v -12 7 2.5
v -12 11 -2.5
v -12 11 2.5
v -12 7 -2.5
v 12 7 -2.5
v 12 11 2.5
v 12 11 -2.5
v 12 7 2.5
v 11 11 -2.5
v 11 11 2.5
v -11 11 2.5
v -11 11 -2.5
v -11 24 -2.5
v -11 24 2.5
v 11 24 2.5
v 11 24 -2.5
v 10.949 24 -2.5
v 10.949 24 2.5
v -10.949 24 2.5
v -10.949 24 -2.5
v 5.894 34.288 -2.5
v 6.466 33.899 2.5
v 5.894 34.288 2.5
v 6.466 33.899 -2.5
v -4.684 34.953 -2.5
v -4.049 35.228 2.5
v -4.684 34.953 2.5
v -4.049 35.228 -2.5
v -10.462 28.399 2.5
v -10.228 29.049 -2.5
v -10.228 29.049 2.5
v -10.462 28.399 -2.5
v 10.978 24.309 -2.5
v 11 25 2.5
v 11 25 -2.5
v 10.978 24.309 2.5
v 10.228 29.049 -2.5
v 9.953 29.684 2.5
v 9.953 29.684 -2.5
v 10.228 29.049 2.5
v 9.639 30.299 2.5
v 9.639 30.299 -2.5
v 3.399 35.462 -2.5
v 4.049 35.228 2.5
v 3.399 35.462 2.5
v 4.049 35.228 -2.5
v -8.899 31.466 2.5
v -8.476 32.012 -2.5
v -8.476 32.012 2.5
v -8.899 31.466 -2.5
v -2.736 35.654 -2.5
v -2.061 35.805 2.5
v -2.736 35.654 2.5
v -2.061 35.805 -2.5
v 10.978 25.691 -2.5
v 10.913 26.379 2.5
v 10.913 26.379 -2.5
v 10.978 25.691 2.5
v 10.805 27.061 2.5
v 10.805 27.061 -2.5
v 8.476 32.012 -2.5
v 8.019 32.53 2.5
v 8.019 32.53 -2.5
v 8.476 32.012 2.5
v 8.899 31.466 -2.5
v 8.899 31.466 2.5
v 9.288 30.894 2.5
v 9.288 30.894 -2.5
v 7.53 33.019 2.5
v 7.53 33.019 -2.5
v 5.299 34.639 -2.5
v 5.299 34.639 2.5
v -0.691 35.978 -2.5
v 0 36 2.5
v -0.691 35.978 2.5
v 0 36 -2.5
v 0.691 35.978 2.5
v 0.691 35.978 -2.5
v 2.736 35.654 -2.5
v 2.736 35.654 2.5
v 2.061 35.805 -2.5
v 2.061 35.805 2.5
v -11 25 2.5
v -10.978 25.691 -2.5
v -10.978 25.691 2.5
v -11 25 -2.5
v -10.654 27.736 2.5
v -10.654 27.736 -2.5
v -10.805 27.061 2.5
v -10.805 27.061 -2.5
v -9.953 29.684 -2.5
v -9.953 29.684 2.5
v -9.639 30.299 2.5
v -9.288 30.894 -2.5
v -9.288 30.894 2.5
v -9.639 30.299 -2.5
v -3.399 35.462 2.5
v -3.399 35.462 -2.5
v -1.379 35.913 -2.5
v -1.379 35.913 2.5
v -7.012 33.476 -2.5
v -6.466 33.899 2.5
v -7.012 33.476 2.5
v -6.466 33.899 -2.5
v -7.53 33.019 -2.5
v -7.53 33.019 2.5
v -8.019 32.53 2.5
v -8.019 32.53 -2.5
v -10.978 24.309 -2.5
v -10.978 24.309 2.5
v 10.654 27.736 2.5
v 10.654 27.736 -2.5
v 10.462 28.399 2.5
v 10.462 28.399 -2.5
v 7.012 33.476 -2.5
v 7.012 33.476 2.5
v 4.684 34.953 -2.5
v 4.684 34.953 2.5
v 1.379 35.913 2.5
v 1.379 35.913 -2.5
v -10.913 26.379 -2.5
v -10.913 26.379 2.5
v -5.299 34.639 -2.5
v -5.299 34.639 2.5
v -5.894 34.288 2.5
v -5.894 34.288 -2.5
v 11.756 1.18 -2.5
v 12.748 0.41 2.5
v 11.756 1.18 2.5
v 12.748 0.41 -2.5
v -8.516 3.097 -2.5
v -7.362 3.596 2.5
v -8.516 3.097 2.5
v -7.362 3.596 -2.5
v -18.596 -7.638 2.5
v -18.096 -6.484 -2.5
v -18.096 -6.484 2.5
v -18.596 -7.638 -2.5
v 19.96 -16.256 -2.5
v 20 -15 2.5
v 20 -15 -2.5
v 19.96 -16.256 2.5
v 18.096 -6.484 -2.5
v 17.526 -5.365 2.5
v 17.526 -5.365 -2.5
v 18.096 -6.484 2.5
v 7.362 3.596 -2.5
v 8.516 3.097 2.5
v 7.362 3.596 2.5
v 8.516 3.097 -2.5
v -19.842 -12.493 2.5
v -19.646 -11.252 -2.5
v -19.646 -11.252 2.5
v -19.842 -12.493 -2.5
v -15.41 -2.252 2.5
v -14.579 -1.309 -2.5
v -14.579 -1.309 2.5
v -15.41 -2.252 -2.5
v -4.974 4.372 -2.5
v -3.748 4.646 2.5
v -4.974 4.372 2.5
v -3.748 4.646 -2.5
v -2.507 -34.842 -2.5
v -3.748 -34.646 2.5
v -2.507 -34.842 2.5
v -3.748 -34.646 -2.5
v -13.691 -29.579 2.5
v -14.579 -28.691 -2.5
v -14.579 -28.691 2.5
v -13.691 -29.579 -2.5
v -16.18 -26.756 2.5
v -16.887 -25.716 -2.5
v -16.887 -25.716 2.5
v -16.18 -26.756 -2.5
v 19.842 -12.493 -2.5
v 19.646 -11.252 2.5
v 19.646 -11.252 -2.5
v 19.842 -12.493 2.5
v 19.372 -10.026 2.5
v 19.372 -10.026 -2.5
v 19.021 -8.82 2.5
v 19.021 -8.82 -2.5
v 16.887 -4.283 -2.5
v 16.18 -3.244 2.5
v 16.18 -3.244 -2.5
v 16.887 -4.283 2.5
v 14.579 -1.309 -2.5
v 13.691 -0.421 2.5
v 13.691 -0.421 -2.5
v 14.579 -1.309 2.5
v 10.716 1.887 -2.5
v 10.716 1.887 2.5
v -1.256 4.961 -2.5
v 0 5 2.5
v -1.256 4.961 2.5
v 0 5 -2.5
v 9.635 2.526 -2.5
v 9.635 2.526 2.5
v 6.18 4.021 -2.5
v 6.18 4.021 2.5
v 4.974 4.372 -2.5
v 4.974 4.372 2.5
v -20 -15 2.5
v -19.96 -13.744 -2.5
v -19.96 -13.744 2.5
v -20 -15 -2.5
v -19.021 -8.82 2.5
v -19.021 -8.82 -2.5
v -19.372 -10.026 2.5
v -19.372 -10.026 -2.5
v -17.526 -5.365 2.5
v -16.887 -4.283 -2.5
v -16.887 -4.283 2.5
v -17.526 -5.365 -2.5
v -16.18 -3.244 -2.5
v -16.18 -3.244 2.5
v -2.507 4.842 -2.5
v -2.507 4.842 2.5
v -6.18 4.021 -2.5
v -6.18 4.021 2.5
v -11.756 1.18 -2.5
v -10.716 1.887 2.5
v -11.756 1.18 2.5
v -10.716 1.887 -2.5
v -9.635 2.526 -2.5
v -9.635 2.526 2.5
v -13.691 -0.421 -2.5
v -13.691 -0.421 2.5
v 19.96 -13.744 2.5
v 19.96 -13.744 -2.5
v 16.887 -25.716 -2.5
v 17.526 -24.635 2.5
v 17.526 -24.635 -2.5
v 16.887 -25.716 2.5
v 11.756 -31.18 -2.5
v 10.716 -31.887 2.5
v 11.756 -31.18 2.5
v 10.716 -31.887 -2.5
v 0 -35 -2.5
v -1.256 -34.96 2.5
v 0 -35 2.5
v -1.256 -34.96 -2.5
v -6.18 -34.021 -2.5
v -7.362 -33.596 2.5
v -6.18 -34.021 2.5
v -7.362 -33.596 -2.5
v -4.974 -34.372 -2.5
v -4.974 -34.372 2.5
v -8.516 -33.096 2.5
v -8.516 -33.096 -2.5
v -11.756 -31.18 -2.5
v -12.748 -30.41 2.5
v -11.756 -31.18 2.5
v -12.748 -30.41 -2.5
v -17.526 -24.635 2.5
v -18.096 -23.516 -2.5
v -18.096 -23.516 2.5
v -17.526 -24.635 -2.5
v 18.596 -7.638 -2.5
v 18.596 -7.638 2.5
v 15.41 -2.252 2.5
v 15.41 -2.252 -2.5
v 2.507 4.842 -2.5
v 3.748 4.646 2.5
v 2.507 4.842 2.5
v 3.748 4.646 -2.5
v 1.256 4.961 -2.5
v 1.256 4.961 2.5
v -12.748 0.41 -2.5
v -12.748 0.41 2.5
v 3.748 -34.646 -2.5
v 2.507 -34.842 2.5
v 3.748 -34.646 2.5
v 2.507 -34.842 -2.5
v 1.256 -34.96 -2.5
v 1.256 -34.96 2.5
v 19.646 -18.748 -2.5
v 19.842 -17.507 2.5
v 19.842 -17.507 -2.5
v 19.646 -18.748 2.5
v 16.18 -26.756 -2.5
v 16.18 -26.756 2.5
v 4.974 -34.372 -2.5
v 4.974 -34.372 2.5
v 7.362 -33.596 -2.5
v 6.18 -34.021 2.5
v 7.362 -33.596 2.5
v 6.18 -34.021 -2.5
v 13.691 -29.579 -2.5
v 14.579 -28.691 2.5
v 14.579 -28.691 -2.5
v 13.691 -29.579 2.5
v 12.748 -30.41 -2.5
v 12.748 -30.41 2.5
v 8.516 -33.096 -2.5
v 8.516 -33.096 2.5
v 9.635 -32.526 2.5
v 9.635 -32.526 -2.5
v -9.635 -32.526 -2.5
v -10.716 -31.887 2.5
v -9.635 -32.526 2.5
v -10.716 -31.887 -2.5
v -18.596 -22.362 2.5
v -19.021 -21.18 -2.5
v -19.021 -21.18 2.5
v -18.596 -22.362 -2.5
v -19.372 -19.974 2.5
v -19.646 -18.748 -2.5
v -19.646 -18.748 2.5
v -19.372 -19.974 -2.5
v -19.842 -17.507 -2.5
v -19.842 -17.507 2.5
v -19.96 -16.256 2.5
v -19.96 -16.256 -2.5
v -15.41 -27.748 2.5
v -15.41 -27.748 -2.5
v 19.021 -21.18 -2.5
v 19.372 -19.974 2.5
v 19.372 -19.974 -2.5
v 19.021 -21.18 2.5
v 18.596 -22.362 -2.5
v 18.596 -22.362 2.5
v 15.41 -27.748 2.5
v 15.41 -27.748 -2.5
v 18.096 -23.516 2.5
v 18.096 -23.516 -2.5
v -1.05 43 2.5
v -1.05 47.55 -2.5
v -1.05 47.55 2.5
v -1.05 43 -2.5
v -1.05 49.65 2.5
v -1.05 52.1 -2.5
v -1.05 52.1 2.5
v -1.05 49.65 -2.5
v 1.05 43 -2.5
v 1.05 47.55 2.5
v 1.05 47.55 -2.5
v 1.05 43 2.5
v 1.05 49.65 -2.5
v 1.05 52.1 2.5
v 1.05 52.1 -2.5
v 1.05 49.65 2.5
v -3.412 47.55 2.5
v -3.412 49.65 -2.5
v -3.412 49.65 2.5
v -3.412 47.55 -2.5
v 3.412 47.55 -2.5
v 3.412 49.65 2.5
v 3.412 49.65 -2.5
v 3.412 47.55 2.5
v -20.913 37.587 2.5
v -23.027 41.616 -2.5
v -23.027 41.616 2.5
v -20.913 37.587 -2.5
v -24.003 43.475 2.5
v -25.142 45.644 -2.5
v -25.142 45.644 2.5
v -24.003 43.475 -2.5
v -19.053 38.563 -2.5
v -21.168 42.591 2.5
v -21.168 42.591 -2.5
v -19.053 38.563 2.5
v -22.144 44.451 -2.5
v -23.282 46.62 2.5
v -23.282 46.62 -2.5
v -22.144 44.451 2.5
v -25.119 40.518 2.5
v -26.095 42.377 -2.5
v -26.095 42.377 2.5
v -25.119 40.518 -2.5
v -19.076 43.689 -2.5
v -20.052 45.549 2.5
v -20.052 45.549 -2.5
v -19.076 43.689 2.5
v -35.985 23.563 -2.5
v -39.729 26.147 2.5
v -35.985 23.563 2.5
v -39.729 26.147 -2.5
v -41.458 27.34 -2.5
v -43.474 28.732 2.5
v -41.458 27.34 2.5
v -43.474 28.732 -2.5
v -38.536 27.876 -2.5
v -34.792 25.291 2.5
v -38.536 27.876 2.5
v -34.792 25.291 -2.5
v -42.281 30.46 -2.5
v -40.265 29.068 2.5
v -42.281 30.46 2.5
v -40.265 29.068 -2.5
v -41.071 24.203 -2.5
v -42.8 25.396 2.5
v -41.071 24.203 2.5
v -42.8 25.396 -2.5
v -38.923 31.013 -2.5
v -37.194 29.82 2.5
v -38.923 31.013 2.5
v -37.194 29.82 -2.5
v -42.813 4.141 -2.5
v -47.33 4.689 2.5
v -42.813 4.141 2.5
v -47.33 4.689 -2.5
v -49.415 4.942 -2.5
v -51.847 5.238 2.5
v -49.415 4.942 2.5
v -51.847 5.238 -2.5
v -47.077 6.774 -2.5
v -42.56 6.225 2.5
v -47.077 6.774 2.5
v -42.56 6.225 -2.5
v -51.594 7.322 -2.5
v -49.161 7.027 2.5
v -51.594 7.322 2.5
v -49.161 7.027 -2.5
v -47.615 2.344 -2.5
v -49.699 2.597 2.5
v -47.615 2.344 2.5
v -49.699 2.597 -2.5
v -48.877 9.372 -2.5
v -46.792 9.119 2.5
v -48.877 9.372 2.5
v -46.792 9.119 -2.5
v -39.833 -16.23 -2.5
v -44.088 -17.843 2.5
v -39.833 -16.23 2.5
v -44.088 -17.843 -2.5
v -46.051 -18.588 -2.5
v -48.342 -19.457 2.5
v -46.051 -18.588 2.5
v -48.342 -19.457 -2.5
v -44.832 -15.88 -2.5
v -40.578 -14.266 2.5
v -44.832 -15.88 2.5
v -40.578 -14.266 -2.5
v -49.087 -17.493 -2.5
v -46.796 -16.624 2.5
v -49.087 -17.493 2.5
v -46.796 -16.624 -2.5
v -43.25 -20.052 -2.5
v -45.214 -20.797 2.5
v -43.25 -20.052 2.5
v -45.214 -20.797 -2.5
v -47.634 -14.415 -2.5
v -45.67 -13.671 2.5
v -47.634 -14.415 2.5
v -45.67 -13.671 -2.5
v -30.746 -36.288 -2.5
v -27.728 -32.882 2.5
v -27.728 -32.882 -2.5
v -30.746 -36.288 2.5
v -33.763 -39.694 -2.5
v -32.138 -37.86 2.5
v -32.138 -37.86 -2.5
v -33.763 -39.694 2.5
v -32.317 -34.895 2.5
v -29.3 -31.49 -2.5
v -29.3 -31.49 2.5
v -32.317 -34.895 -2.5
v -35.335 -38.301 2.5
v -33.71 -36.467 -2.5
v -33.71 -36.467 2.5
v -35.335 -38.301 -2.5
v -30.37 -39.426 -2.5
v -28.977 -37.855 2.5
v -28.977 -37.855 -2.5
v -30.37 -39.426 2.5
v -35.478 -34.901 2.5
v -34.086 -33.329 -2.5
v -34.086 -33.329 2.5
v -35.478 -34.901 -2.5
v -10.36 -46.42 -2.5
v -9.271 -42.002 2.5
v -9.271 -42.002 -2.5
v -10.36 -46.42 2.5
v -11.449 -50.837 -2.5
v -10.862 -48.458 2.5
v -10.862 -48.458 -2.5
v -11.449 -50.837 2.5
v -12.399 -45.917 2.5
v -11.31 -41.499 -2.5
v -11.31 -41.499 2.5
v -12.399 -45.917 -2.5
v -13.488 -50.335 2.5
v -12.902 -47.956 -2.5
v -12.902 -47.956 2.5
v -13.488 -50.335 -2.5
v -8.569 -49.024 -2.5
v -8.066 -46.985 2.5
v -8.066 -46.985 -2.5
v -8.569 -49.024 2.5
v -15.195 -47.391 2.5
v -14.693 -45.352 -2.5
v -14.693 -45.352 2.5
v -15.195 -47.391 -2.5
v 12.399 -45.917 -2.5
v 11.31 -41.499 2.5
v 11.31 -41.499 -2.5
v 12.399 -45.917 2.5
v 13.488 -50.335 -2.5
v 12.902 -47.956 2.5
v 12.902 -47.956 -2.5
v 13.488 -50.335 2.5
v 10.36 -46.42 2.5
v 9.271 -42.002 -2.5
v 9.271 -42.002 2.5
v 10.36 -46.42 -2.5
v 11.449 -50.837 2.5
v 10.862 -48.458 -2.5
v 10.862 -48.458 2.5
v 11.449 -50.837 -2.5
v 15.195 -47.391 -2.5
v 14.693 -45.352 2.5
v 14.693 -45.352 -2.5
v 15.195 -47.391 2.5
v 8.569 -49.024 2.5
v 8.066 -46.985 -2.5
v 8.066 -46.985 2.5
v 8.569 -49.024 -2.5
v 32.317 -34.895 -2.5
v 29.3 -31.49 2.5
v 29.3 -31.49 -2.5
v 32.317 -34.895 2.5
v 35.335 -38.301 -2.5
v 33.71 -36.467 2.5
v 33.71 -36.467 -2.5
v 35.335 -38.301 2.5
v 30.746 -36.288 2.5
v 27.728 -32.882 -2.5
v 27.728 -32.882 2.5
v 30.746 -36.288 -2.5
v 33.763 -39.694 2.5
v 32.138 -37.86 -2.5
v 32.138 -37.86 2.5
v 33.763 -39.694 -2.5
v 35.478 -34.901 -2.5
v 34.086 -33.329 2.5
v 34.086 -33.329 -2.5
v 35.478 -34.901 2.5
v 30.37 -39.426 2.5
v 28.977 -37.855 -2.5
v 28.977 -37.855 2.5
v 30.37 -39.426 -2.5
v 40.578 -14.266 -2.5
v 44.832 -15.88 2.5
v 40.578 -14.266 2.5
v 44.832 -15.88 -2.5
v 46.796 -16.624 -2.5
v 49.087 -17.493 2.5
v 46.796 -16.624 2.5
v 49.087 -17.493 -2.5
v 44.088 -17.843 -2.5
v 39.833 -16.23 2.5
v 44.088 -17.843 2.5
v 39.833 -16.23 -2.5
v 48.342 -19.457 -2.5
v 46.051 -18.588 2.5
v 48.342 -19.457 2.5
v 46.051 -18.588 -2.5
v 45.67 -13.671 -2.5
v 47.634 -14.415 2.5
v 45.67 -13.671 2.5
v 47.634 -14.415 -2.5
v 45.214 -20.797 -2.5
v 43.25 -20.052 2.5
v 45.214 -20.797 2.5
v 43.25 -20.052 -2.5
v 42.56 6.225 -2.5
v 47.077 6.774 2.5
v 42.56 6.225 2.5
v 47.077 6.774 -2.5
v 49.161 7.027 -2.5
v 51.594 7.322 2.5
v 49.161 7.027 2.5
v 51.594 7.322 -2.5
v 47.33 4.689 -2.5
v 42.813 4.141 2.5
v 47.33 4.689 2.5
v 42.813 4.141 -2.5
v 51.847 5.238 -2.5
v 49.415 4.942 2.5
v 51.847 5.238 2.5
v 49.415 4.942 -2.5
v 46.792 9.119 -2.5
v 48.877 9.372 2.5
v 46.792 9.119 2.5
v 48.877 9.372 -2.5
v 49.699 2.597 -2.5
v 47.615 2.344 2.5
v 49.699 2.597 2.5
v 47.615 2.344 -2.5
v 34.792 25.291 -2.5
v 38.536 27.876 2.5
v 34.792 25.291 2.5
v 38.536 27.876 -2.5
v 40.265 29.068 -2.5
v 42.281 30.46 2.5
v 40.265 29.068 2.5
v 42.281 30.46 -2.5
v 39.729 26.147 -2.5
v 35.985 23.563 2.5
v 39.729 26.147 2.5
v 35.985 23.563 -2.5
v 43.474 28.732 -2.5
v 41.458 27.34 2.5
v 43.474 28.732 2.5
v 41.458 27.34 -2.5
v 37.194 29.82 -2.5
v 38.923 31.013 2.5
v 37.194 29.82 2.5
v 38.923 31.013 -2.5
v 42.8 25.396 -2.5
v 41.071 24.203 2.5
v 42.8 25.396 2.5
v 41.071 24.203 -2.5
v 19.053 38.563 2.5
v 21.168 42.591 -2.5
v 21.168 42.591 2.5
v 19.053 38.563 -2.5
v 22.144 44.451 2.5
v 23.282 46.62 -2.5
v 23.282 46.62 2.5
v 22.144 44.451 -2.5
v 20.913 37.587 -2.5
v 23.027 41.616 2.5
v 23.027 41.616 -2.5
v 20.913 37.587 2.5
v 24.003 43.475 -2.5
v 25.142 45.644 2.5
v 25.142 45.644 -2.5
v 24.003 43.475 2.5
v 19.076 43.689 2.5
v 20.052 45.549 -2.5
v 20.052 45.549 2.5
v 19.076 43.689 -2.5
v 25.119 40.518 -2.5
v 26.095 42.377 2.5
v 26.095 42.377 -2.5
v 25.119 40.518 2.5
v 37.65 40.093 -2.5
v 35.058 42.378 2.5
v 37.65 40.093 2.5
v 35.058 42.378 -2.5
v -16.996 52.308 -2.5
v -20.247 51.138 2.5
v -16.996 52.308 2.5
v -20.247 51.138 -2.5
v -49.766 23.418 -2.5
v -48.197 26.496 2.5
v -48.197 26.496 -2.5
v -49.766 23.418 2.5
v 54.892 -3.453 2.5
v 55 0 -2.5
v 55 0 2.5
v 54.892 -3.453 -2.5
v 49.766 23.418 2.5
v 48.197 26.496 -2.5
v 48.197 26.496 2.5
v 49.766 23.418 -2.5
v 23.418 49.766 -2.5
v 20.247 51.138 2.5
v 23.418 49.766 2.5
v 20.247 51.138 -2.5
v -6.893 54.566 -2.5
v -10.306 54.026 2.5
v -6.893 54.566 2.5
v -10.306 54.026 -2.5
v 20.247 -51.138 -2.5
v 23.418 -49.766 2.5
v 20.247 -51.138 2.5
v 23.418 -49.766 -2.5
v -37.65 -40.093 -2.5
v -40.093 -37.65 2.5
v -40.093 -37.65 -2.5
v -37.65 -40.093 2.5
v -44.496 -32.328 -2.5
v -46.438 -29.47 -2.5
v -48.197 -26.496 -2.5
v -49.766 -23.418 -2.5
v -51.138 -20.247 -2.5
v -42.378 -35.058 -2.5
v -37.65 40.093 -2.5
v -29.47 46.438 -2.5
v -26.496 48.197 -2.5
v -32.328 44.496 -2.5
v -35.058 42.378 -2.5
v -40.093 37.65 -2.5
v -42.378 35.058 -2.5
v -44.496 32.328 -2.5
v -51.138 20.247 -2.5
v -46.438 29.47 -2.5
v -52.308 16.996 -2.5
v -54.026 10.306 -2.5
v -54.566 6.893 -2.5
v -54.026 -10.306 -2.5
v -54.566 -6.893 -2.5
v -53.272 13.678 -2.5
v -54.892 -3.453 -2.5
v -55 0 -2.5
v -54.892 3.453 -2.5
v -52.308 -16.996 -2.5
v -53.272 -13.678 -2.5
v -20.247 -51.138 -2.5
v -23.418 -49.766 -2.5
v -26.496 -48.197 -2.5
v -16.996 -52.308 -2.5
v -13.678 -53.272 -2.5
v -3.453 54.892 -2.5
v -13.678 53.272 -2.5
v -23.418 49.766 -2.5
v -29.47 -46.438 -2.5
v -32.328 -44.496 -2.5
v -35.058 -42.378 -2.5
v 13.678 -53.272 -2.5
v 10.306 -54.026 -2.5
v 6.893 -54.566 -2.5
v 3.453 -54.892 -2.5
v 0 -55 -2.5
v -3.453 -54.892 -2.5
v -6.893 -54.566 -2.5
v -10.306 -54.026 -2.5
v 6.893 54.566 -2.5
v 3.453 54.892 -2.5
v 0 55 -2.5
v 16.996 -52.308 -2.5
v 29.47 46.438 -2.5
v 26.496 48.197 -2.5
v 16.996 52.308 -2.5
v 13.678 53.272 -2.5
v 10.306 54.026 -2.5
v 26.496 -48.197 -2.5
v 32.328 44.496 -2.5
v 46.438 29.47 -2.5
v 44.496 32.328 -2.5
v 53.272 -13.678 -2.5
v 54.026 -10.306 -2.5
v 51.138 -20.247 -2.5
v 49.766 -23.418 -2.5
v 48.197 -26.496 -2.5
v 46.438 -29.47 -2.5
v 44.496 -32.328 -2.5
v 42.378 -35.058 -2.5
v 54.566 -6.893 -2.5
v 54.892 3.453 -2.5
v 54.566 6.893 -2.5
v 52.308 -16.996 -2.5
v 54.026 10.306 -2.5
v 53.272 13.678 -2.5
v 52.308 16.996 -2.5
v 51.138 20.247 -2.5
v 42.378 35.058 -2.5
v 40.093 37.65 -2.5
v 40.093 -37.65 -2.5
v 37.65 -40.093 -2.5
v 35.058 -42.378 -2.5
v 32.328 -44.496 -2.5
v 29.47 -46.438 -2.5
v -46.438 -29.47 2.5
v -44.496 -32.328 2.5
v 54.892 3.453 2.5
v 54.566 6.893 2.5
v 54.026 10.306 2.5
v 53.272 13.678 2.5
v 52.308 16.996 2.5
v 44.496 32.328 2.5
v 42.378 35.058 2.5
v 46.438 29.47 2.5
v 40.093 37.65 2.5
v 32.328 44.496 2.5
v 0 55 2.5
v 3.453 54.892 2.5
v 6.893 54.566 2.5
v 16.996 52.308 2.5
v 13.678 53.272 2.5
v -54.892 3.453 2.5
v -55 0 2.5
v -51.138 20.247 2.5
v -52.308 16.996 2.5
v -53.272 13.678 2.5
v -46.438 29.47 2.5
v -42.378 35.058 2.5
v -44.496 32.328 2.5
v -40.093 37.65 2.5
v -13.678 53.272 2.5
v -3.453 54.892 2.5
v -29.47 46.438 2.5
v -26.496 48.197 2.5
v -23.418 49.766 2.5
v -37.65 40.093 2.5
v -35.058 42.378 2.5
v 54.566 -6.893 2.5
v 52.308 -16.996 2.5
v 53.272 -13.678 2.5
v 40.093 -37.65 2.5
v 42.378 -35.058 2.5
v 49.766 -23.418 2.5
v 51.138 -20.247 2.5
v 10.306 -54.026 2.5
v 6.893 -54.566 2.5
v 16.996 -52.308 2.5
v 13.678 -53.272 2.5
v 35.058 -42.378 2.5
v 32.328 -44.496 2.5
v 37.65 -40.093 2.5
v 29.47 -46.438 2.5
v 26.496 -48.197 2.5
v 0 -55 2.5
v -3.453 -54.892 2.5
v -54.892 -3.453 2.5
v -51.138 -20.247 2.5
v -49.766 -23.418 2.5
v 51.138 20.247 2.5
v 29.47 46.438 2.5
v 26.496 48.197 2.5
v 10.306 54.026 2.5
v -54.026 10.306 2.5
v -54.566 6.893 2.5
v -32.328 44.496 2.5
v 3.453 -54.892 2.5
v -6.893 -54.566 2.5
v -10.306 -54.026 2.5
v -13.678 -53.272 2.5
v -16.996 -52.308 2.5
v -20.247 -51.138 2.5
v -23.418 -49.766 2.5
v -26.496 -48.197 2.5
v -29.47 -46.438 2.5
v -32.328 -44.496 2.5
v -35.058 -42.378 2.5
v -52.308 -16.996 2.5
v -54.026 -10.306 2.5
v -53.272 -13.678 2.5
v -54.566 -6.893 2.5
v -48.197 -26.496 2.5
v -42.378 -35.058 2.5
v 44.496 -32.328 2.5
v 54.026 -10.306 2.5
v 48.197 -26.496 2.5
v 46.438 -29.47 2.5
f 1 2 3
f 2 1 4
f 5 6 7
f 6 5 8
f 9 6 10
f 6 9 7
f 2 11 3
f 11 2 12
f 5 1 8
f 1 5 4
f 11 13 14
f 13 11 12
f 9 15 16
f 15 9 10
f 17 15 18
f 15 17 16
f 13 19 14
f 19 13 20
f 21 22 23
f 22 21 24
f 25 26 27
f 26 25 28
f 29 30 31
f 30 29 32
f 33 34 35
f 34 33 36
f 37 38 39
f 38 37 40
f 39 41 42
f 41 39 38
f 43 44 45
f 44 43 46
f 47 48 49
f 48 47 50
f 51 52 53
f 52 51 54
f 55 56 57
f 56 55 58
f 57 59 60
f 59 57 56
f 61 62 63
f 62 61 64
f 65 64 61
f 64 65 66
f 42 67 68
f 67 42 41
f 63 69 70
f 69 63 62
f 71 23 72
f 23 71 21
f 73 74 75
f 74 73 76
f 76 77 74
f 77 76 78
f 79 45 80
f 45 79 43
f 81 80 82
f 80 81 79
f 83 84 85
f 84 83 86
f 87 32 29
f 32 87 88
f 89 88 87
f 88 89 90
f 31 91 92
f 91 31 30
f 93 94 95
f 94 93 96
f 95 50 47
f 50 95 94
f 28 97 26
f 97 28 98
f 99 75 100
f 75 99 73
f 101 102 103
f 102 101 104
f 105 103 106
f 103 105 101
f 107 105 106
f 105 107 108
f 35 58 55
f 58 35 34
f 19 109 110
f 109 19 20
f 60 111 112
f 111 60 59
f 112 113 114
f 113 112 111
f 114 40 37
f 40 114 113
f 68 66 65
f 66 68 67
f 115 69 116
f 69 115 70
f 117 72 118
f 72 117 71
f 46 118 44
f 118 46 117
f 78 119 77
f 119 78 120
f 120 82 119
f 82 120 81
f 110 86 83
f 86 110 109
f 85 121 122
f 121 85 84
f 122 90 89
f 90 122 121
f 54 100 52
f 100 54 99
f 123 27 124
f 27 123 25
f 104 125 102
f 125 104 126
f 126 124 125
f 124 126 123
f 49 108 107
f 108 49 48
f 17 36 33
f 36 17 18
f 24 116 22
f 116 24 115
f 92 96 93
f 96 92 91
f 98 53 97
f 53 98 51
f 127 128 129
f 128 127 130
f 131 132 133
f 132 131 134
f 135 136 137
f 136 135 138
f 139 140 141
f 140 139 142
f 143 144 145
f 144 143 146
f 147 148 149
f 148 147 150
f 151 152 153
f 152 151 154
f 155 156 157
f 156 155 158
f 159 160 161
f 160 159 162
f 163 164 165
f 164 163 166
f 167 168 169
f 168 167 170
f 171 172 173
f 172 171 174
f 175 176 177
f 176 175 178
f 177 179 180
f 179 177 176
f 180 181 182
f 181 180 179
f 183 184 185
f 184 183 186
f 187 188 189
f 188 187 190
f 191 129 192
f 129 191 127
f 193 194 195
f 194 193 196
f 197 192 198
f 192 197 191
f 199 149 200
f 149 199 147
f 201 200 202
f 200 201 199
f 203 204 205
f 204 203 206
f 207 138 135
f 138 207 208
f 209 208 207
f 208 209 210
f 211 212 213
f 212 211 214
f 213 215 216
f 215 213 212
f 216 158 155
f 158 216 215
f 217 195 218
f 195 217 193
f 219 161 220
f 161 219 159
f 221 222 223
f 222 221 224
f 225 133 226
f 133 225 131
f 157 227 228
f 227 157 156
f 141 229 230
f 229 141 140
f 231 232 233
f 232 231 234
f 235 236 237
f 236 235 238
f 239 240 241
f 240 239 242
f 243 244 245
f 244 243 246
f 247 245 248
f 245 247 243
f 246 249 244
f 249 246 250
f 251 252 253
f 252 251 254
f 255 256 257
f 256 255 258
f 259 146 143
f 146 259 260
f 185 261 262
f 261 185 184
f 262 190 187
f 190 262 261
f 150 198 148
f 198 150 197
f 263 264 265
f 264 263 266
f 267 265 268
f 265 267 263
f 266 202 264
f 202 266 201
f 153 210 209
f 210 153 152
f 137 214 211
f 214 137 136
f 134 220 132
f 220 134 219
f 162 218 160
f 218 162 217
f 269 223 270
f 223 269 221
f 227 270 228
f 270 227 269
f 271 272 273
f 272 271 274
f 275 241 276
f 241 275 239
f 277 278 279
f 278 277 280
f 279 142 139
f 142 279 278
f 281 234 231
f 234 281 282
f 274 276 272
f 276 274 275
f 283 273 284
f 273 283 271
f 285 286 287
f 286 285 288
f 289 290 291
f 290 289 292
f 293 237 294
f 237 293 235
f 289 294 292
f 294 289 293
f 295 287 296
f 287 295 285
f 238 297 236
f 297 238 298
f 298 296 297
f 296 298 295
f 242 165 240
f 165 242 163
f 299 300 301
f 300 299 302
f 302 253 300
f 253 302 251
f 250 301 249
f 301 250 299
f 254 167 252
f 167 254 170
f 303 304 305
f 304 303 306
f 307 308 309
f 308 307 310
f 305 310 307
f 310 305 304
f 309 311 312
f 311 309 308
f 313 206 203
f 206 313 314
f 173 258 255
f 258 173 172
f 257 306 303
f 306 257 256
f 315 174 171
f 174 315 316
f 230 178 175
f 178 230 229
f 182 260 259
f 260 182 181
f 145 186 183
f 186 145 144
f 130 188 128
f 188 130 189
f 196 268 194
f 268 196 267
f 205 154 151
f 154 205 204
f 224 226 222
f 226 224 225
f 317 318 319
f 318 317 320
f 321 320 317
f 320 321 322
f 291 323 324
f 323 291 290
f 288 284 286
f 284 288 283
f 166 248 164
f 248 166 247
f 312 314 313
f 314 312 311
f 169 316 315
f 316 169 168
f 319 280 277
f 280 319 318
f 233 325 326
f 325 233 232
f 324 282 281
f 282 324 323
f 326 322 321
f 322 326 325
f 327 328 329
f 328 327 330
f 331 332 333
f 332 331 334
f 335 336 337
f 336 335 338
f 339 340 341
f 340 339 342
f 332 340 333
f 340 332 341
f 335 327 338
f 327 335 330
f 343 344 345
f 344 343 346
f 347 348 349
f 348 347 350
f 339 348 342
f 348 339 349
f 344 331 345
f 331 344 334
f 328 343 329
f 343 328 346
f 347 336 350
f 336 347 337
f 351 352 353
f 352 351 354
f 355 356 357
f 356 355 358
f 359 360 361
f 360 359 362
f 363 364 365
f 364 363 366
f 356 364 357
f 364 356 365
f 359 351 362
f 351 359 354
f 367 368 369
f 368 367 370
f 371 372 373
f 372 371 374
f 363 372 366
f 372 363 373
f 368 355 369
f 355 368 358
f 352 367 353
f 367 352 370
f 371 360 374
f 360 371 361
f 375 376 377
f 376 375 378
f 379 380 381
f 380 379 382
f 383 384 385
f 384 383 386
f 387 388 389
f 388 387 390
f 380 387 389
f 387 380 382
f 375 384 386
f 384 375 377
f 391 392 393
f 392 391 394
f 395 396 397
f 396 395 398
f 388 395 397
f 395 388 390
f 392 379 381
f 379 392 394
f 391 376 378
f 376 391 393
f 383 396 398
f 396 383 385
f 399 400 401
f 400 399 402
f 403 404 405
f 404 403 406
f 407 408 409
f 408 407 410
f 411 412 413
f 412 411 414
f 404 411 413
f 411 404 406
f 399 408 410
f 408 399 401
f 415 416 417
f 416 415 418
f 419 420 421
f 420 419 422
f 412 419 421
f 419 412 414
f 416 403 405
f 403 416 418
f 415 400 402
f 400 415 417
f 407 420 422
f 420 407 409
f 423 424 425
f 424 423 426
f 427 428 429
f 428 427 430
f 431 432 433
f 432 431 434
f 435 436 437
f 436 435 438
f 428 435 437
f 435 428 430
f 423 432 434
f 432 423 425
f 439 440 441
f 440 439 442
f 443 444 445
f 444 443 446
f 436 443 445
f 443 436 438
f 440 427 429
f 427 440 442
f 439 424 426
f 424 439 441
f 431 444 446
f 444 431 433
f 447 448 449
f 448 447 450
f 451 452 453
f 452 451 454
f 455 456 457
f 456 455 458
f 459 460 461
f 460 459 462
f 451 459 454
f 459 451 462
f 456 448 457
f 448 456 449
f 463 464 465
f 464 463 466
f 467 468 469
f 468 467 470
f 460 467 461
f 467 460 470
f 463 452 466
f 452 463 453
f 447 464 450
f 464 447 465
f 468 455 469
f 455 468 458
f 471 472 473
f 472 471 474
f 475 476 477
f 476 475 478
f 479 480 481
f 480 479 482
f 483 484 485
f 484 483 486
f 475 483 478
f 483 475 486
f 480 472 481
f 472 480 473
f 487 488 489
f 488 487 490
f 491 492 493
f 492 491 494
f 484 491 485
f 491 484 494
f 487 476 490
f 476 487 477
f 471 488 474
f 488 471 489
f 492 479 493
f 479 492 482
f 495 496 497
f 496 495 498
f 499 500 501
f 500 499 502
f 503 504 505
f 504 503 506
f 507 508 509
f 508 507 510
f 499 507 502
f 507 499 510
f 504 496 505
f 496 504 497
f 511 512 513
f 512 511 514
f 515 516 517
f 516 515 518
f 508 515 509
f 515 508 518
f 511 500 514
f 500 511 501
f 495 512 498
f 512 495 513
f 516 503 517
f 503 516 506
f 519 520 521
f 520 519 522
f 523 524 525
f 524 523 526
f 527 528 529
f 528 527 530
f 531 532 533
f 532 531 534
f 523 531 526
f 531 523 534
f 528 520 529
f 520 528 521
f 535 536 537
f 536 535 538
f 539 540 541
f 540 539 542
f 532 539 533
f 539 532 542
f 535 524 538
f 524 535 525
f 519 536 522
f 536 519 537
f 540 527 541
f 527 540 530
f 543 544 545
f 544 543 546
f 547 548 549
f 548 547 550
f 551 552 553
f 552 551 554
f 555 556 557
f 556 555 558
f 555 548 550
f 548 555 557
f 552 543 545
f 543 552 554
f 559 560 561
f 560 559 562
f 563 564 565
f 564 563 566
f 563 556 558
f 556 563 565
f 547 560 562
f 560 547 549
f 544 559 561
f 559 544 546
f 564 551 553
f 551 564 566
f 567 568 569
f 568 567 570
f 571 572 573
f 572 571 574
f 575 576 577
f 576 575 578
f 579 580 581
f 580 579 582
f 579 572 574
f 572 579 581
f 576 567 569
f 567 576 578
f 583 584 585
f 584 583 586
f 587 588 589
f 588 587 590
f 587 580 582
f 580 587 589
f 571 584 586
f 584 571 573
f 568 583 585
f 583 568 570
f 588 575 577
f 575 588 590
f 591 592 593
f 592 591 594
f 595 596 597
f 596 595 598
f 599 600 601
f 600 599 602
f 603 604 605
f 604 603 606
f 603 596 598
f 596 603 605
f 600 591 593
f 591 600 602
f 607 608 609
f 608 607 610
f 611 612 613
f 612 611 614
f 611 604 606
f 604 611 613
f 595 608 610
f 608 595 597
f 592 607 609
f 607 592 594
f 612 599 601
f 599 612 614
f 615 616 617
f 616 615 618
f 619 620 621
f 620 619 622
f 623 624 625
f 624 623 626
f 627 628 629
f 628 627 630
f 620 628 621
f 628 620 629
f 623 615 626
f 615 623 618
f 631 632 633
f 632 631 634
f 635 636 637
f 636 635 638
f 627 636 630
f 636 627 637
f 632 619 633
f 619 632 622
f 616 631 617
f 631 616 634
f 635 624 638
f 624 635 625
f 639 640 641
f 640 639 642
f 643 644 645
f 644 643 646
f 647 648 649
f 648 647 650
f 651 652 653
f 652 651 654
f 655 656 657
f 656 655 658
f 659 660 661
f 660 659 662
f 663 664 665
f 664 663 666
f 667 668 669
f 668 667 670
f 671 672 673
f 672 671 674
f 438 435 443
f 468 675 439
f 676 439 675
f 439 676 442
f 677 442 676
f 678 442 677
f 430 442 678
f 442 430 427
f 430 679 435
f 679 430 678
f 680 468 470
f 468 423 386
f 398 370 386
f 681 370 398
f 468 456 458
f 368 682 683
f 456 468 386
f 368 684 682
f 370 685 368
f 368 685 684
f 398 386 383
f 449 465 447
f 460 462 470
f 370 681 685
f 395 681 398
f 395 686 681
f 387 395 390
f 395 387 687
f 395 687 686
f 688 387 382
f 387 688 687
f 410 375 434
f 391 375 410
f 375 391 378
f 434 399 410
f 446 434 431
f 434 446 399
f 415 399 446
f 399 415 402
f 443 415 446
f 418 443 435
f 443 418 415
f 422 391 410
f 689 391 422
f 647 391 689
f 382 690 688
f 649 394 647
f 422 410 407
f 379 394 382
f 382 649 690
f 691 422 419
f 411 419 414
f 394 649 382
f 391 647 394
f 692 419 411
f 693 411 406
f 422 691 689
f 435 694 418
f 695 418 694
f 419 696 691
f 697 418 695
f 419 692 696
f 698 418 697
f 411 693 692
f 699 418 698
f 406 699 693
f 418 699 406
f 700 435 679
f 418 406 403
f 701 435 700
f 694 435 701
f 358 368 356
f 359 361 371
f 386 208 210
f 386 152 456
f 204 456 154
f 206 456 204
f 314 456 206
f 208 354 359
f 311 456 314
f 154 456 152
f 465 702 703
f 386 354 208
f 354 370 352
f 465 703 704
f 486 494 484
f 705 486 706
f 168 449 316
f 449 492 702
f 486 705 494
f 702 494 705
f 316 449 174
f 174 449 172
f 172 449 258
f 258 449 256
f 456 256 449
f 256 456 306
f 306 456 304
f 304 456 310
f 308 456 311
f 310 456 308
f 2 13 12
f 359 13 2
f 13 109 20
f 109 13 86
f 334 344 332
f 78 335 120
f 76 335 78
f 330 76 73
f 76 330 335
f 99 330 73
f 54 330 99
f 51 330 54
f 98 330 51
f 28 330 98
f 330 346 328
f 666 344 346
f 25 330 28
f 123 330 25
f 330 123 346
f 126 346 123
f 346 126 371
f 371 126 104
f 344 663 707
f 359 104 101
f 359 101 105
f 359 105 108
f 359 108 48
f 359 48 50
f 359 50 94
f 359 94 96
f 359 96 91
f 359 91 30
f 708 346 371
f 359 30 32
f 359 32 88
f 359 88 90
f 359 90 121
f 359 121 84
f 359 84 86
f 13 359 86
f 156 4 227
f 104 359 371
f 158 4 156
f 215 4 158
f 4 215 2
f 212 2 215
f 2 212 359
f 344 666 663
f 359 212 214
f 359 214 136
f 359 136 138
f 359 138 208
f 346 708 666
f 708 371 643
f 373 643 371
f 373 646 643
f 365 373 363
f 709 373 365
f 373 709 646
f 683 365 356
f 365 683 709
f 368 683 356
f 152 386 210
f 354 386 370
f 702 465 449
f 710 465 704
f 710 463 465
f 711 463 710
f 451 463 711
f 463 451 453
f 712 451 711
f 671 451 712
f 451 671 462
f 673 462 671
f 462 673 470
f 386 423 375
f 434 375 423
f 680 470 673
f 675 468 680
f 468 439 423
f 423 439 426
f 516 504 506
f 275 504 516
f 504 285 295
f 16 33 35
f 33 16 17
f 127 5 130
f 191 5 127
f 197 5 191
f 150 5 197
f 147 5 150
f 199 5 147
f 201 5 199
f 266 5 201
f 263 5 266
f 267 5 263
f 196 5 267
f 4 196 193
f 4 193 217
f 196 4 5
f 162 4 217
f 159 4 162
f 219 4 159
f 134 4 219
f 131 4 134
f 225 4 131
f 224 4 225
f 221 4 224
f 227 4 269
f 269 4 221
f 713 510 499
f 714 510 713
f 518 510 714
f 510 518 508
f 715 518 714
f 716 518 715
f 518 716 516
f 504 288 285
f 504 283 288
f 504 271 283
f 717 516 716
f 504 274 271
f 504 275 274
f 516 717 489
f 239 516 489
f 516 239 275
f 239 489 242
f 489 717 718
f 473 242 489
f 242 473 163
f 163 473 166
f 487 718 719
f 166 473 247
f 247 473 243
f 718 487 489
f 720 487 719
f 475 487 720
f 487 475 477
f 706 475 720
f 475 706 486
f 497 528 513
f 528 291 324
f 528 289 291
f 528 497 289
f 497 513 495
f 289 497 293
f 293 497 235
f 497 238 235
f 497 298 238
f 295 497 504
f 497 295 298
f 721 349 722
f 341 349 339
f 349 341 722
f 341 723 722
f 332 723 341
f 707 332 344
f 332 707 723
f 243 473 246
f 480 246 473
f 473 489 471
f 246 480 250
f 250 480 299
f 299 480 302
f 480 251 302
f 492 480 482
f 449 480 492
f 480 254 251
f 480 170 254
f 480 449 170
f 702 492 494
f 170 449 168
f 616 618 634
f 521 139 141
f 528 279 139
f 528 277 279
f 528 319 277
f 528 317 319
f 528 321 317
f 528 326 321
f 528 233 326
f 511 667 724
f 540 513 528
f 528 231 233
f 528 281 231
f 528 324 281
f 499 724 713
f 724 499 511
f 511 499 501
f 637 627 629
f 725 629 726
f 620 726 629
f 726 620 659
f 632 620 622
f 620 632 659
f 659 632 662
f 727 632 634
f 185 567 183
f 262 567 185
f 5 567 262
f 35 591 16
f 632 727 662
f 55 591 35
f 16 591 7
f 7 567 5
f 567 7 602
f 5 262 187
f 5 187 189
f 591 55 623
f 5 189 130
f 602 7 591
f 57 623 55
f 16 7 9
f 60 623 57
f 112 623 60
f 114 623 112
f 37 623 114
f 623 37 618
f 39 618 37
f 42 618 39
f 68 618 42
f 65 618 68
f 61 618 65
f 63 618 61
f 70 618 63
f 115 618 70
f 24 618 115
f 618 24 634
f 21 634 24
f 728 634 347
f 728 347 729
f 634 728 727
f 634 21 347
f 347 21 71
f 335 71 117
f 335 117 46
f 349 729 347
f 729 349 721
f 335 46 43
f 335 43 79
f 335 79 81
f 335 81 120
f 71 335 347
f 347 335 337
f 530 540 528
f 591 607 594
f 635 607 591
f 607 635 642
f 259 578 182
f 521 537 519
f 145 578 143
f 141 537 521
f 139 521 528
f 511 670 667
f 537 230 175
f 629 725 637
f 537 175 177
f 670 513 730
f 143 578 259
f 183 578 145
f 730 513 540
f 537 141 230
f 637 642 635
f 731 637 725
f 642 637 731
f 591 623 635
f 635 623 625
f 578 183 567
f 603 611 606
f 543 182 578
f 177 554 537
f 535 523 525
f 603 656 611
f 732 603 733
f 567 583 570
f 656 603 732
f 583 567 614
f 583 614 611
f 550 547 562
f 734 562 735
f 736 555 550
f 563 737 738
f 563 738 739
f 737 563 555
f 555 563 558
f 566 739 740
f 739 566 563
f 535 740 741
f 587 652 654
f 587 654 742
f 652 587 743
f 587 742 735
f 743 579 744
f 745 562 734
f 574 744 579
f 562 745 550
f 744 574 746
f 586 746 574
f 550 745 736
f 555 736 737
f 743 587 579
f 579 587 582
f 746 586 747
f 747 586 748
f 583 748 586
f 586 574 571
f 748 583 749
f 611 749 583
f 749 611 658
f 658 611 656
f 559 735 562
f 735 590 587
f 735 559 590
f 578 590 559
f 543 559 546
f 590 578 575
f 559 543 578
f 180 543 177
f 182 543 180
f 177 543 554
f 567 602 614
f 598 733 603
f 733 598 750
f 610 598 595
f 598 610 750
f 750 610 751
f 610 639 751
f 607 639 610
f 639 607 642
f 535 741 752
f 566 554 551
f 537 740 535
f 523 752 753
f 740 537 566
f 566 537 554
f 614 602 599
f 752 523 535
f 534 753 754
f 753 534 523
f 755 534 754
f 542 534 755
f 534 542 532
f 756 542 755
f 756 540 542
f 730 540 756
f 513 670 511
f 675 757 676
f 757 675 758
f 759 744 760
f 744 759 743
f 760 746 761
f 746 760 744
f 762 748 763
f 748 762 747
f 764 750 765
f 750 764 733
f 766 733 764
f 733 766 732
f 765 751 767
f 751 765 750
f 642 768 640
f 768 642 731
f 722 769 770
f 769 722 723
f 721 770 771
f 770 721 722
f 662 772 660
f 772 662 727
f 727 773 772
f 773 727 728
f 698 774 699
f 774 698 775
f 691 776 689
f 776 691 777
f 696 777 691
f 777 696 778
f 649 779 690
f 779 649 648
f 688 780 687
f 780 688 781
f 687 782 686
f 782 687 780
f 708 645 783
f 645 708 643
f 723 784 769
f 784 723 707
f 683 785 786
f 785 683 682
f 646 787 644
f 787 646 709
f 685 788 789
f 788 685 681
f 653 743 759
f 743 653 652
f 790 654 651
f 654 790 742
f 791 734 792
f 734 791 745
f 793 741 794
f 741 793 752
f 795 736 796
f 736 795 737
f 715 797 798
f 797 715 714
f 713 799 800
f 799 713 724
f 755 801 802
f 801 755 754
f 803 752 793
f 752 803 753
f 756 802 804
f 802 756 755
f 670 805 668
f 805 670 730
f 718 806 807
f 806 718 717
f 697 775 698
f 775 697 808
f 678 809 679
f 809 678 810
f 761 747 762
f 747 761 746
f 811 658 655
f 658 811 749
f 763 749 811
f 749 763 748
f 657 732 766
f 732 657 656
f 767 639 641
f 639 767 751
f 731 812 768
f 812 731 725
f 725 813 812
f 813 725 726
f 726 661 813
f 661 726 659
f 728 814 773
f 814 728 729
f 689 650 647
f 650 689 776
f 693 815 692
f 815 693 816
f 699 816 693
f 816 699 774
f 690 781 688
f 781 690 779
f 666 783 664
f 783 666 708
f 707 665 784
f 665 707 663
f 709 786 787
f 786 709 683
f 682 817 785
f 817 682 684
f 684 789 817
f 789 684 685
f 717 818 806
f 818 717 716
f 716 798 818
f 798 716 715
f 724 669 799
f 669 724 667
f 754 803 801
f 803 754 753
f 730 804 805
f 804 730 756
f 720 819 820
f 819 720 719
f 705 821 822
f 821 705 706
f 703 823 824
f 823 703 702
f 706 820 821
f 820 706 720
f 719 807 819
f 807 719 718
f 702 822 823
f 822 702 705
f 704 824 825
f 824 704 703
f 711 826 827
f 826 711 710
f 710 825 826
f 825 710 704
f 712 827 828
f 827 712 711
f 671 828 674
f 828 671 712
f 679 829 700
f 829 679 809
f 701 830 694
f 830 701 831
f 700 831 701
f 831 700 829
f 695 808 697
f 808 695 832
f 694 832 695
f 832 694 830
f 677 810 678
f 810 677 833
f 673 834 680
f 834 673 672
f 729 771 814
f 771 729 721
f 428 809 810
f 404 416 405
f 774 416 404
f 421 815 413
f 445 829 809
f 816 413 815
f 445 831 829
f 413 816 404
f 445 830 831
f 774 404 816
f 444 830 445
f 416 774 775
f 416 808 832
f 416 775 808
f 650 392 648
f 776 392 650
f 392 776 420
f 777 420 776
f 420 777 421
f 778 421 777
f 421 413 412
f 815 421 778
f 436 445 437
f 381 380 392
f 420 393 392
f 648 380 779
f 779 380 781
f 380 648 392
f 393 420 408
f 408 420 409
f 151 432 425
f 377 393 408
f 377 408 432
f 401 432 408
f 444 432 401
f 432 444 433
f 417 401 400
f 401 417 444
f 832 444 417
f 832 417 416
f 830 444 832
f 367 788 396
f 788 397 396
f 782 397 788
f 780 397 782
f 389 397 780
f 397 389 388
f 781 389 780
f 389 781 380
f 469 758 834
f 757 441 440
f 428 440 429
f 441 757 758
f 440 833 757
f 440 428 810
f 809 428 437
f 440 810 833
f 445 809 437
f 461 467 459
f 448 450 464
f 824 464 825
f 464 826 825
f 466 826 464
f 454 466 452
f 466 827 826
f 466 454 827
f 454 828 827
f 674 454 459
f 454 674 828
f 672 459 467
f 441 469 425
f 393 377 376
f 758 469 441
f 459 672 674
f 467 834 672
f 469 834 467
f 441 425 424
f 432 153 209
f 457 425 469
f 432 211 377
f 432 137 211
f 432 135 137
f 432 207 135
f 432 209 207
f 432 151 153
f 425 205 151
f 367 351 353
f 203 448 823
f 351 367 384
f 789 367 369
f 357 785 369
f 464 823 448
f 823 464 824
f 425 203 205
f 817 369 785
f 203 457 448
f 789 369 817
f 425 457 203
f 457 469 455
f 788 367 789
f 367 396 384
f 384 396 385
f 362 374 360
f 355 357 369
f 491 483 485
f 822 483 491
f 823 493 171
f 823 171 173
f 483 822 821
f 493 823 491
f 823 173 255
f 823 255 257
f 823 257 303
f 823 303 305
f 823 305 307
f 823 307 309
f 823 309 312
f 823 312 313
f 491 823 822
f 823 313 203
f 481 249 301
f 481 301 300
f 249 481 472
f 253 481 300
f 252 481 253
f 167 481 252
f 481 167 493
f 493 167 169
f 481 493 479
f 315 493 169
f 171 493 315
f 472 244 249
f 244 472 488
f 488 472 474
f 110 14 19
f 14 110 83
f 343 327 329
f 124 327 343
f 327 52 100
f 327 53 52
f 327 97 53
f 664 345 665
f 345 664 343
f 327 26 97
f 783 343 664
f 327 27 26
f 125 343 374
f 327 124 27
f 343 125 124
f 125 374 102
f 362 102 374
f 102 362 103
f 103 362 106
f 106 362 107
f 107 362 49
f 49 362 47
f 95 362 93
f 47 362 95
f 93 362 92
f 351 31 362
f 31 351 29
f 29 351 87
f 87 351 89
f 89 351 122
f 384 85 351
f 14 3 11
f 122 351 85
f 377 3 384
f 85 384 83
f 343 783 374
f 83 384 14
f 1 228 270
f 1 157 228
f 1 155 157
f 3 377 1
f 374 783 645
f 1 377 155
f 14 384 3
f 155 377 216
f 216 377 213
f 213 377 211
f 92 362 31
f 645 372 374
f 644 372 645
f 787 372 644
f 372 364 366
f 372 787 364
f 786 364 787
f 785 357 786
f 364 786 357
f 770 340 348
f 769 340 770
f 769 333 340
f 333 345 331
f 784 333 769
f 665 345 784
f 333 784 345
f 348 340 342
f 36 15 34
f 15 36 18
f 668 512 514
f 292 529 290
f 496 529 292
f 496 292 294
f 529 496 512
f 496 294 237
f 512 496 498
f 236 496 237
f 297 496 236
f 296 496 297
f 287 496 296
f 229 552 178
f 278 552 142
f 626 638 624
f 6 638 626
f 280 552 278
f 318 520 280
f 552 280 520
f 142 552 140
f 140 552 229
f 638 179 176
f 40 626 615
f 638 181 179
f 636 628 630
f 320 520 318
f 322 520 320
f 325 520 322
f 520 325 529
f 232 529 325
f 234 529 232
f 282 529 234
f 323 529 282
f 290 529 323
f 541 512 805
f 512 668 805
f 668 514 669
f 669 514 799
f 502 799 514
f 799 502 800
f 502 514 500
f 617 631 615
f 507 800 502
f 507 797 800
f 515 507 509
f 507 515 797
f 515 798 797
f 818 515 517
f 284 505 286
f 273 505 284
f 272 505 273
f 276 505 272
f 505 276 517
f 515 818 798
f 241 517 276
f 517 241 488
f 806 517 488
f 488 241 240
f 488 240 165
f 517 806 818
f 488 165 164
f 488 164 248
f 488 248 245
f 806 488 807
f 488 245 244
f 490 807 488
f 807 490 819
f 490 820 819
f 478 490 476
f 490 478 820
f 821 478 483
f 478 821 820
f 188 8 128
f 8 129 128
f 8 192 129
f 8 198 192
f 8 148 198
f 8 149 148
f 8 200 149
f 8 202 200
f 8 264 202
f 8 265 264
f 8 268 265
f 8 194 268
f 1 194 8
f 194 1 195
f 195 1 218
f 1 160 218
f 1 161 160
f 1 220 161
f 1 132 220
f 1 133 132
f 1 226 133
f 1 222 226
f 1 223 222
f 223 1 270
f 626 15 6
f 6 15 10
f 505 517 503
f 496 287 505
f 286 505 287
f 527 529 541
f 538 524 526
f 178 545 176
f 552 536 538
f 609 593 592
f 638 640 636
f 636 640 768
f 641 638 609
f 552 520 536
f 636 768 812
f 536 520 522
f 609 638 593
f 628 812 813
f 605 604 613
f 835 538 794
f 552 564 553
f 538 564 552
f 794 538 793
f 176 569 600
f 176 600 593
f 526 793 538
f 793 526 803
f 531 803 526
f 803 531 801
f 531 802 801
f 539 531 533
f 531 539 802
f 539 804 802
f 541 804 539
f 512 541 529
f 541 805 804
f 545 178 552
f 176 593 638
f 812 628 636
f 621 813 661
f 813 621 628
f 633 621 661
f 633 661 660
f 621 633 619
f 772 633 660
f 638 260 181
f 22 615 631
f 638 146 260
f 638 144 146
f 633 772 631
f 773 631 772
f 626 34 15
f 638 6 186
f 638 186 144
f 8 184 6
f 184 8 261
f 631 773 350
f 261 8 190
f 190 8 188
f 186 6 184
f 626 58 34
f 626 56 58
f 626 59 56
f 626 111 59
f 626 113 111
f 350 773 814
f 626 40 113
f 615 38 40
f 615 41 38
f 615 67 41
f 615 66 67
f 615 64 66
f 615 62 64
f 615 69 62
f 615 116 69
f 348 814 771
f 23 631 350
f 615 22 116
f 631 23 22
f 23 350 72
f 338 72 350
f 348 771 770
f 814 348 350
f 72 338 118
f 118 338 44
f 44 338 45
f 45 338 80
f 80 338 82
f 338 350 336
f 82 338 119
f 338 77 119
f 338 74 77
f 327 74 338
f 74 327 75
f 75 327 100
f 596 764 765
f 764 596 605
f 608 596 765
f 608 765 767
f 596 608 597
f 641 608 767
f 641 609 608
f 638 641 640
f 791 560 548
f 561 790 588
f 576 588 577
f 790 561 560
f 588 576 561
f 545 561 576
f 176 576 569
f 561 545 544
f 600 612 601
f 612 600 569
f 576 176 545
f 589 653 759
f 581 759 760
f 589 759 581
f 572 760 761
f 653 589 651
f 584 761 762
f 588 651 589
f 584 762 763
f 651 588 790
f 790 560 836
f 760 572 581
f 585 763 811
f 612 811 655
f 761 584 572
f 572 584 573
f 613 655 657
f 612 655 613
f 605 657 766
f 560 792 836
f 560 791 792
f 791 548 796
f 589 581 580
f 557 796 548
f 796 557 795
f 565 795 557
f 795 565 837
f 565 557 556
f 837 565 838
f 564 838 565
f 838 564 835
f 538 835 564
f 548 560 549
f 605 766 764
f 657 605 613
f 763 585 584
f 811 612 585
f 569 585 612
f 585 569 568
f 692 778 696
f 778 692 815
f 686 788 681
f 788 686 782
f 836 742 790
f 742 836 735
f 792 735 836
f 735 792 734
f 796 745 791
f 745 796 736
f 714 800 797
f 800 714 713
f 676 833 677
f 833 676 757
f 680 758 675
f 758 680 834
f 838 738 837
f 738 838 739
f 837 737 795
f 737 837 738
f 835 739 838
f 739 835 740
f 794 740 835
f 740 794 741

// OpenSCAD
// file: ../../../../shapes/religion/christianity/crucifixion-cross/crucifixion-cross.scad
crucifixionCcross();

module crucifixionCcross(height=2)
{
    beamWidth = 3;
    
    union()
    {
        // vertical beam
        xTranslate = -beamWidth / 2.0;
        yLength = 13;
        color("brown")
        translate([xTranslate, 0, 0])
        cube([3, yLength, height]);

        // horizontal beam        
        yTranslate = yLength * 0.5;
        xLength = yLength * 0.75;
        xTranslateHBeam = -xLength / 2.0;
        
        color("green")
        translate([xTranslateHBeam, yTranslate, 0])
        cube([xLength, 3, height]);        
    }        
}
// file: ../../../../shapes/trees/christmas/christmas-tree.scad
christmasTree();

module christmasTree(height = 3)
{
    union()
    {
        // top triangle
        translate([0, 30, 0])
        triangle(10, height);
        
        // middle triangle
        translate([0, 15, 0])
        color("green")
        triangle(15, height);
        
        // bottom triangle
        triangle(20, height);
        
        // trunk
        color("brown")
        translate([-2.5, -15, 0])
        cube([5, 5, height]);
    }
}

module triangle(size, height)
{
    rotate([0, 0, 90])
    cylinder(r=size, 
             $fn=3,
             h=height);
}
// file: ../../../../shapes/throwie-cutout/throwie-cutout.scad
throwieCutout();

/**
 * this modeled after a 5mm LED
 */
module throwieCutout(height=2)
{
    ledWidth = 10;
    ledHeight = 13;
    
    union()
    {
        // LED bottom cutout
        ledBottomCutoutLengthX = ledWidth + 1 + 1; 
        xTranslate = -ledBottomCutoutLengthX / 2.0;
        yLength = 13;
        color("brown")
        translate([xTranslate, 0, 0])
        cube([ledBottomCutoutLengthX, 2, height]);

        // LED middle coutout        
        yTranslate = 1.5;
        xLength = ledWidth + 1;
        xTranslateHBeam = -xLength / 2.0; 
        color("green")
        translate([xTranslateHBeam, yTranslate, 0])
        cube([xLength, 7, height]);
        
        // LED curved top
        curvedTopTranslateY = (2 + 7);
        curvedTopRadius = (ledWidth / 2.0) + 0.5;
        color("red")
        translate([0, curvedTopTranslateY, 0])
        cylinder (h = height, r=curvedTopRadius, $fn=100);
        
        // battery
        batteryRadius = 10;
        translate([0, -11, 0])
        cylinder (h = height, r=batteryRadius, $fn=100);
    }        
}
// file: ../../../../shapes/spurs/spurs-a.scad
// Module names are of the form poly_<inkscape-path-id>().  As a result,
// you can associate a polygon in this OpenSCAD program with the corresponding
// SVG element in the Inkscape document by looking for the XML element with
// the attribute id="inkscape-path-id".

// fudge value is used to ensure that subtracted solids are a tad taller
// in the z dimension than the polygon being subtracted from.  This helps
// keep the resulting .stl file manifold.
fudge = 0.1;

module spurs(h)
{
  scale([25.4/90, -25.4/90, 1]) union()
  {
    linear_extrude(height=h)
      polygon([[13.500000,-56.000000],[29.500000,-55.000000],[54.500000,-55.000000],[58.503750,-55.048750],[60.522969,-55.341719],[62.290000,-56.020000],[64.325156,-57.853594],[66.241250,-60.541250],[69.240000,-66.000000],[80.500000,-87.000000],[106.280000,-135.000000],[118.870000,-159.000000],[122.780000,-198.000000],[124.023594,-204.882813],[125.843750,-209.652500],[128.457031,-214.095937],[132.080000,-220.000000],[148.490000,-248.000000],[153.376719,-256.487656],[155.041895,-259.143652],[156.518750,-260.956250],[158.055137,-262.086816],[159.898906,-262.696719],[165.500000,-263.000000],[214.500000,-263.000000],[214.500000,-213.000000],[213.360000,-196.000000],[213.360000,-154.000000],[213.495000,-150.462500],[213.360000,-147.000000],[196.920000,-117.000000],[156.350000,-45.000000],[125.920000,9.000000],[120.671250,18.592500],[117.385469,23.577187],[115.794199,25.366055],[114.320000,26.400000],[112.797344,26.797500],[110.981250,26.970000],[107.500000,27.000000],[79.500000,27.000000],[65.500000,28.000000],[31.500000,28.000000],[27.943750,28.030000],[24.500000,28.600000],[22.684180,29.597539],[20.548438,31.277812],[15.792500,35.922500],[7.670000,45.000000],[-36.500000,94.040000],[-25.500000,94.040000],[-15.500000,95.000000],[1.500000,95.000000],[22.500000,96.000000],[2.500000,114.080000],[-38.500000,149.000000],[-23.230000,165.000000],[-3.230000,188.000000],[14.500000,210.000000],[-66.500000,189.000000],[-91.500000,263.000000],[-92.970664,261.624141],[-94.426562,259.592500],[-97.197500,254.302500],[-101.500000,244.000000],[-121.500000,198.000000],[-200.500000,222.000000],[-174.840000,182.000000],[-154.500000,151.000000],[-187.500000,128.020000],[-214.500000,108.000000],[-166.500000,103.830000],[-135.500000,101.000000],[-137.410000,77.000000],[-139.590000,41.000000],[-140.500000,31.000000],[-138.108496,32.343340],[-135.722969,34.055469],[-131.038750,38.223750],[-122.500000,47.000000],[-111.500000,57.040000],[-94.500000,74.000000],[-77.500000,27.000000],[-107.500000,26.000000],[-117.196250,25.451250],[-122.812656,24.814531],[-126.090000,23.980000],[-127.513906,22.488438],[-128.773750,20.335000],[-130.730000,16.000000],[-138.200000,-1.000000],[-140.195000,-5.868750],[-140.649688,-8.406719],[-140.330000,-11.000000],[-134.780000,-21.000000],[-120.780000,-45.000000],[-74.650000,-124.000000],[-55.110000,-158.000000],[-46.570000,-206.000000],[-30.280000,-238.000000],[-21.920000,-254.000000],[-19.818750,-257.793750],[-18.535156,-259.646094],[-17.110000,-260.980000],[-15.251406,-261.684844],[-12.943750,-261.983750],[-8.500000,-261.990000],[5.500000,-261.000000],[19.500000,-261.000000],[31.500000,-260.040000],[43.500000,-260.040000],[43.500000,-217.000000],[44.500000,-200.000000],[44.500000,-162.000000],[43.800000,-154.000000],[28.100000,-127.000000],[-14.500000,-56.000000],[13.500000,-56.000000]]);
  }
}

spurs(5);
// file: ../../../coin.scad
use <../shapes/spurs/spurs-a.scad>
use <../shapes/throwie-cutout/throwie-cutout.scad>
use <../shapes/trees/christmas/christmas-tree.scad>
use <../shapes/religion/christianity/crucifixion-cross/crucifixion-cross.scad>

module coin(innerIcon,
            innerIconXyScale,
            innerIconOffsetY,
            outterIcon,
            outerIconCount,            
            outerIconXyScale,
            radius,
            height)
{
    difference()
    {
        // main disk
        cylinder (h = height, r=radius, center = true, $fn=100);
        
        // inner icon
        translate([0, innerIconOffsetY, -5])
        scale([innerIconXyScale, innerIconXyScale, 3.0])
        coinIcon(innerIcon, height);
        
        // outer icons
        for ( i = [0 : outerIconCount] )
        {
            rotate( i * 360 / (outerIconCount+1), [0, 0, 1])
            translate([0, 43, -5])
            scale([outerIconXyScale, outerIconXyScale, 3.0])
            coinIcon(outterIcon, height);
        }
    }    
}

module coinIcon(iconName, height)
{
    if(iconName == "Cross")
    {
        crucifixionCcross(height);
    }
    else if(iconName == "Throwie")
    {
        throwieCutout(height=height);
    }
    else
    {
        // defalut
        christmasTree(height);
    }    
}
// main file
use <../../../coin.scad>;

coin(innerIcon = "Throwie",
     innerIconXyScale = 2,
     innerIconOffsetY = 7,
     outterIcon = "Cross",
     outerIconCount = 12,            
     outerIconXyScale = 0.7,
     radius = 55,
     height=5);
